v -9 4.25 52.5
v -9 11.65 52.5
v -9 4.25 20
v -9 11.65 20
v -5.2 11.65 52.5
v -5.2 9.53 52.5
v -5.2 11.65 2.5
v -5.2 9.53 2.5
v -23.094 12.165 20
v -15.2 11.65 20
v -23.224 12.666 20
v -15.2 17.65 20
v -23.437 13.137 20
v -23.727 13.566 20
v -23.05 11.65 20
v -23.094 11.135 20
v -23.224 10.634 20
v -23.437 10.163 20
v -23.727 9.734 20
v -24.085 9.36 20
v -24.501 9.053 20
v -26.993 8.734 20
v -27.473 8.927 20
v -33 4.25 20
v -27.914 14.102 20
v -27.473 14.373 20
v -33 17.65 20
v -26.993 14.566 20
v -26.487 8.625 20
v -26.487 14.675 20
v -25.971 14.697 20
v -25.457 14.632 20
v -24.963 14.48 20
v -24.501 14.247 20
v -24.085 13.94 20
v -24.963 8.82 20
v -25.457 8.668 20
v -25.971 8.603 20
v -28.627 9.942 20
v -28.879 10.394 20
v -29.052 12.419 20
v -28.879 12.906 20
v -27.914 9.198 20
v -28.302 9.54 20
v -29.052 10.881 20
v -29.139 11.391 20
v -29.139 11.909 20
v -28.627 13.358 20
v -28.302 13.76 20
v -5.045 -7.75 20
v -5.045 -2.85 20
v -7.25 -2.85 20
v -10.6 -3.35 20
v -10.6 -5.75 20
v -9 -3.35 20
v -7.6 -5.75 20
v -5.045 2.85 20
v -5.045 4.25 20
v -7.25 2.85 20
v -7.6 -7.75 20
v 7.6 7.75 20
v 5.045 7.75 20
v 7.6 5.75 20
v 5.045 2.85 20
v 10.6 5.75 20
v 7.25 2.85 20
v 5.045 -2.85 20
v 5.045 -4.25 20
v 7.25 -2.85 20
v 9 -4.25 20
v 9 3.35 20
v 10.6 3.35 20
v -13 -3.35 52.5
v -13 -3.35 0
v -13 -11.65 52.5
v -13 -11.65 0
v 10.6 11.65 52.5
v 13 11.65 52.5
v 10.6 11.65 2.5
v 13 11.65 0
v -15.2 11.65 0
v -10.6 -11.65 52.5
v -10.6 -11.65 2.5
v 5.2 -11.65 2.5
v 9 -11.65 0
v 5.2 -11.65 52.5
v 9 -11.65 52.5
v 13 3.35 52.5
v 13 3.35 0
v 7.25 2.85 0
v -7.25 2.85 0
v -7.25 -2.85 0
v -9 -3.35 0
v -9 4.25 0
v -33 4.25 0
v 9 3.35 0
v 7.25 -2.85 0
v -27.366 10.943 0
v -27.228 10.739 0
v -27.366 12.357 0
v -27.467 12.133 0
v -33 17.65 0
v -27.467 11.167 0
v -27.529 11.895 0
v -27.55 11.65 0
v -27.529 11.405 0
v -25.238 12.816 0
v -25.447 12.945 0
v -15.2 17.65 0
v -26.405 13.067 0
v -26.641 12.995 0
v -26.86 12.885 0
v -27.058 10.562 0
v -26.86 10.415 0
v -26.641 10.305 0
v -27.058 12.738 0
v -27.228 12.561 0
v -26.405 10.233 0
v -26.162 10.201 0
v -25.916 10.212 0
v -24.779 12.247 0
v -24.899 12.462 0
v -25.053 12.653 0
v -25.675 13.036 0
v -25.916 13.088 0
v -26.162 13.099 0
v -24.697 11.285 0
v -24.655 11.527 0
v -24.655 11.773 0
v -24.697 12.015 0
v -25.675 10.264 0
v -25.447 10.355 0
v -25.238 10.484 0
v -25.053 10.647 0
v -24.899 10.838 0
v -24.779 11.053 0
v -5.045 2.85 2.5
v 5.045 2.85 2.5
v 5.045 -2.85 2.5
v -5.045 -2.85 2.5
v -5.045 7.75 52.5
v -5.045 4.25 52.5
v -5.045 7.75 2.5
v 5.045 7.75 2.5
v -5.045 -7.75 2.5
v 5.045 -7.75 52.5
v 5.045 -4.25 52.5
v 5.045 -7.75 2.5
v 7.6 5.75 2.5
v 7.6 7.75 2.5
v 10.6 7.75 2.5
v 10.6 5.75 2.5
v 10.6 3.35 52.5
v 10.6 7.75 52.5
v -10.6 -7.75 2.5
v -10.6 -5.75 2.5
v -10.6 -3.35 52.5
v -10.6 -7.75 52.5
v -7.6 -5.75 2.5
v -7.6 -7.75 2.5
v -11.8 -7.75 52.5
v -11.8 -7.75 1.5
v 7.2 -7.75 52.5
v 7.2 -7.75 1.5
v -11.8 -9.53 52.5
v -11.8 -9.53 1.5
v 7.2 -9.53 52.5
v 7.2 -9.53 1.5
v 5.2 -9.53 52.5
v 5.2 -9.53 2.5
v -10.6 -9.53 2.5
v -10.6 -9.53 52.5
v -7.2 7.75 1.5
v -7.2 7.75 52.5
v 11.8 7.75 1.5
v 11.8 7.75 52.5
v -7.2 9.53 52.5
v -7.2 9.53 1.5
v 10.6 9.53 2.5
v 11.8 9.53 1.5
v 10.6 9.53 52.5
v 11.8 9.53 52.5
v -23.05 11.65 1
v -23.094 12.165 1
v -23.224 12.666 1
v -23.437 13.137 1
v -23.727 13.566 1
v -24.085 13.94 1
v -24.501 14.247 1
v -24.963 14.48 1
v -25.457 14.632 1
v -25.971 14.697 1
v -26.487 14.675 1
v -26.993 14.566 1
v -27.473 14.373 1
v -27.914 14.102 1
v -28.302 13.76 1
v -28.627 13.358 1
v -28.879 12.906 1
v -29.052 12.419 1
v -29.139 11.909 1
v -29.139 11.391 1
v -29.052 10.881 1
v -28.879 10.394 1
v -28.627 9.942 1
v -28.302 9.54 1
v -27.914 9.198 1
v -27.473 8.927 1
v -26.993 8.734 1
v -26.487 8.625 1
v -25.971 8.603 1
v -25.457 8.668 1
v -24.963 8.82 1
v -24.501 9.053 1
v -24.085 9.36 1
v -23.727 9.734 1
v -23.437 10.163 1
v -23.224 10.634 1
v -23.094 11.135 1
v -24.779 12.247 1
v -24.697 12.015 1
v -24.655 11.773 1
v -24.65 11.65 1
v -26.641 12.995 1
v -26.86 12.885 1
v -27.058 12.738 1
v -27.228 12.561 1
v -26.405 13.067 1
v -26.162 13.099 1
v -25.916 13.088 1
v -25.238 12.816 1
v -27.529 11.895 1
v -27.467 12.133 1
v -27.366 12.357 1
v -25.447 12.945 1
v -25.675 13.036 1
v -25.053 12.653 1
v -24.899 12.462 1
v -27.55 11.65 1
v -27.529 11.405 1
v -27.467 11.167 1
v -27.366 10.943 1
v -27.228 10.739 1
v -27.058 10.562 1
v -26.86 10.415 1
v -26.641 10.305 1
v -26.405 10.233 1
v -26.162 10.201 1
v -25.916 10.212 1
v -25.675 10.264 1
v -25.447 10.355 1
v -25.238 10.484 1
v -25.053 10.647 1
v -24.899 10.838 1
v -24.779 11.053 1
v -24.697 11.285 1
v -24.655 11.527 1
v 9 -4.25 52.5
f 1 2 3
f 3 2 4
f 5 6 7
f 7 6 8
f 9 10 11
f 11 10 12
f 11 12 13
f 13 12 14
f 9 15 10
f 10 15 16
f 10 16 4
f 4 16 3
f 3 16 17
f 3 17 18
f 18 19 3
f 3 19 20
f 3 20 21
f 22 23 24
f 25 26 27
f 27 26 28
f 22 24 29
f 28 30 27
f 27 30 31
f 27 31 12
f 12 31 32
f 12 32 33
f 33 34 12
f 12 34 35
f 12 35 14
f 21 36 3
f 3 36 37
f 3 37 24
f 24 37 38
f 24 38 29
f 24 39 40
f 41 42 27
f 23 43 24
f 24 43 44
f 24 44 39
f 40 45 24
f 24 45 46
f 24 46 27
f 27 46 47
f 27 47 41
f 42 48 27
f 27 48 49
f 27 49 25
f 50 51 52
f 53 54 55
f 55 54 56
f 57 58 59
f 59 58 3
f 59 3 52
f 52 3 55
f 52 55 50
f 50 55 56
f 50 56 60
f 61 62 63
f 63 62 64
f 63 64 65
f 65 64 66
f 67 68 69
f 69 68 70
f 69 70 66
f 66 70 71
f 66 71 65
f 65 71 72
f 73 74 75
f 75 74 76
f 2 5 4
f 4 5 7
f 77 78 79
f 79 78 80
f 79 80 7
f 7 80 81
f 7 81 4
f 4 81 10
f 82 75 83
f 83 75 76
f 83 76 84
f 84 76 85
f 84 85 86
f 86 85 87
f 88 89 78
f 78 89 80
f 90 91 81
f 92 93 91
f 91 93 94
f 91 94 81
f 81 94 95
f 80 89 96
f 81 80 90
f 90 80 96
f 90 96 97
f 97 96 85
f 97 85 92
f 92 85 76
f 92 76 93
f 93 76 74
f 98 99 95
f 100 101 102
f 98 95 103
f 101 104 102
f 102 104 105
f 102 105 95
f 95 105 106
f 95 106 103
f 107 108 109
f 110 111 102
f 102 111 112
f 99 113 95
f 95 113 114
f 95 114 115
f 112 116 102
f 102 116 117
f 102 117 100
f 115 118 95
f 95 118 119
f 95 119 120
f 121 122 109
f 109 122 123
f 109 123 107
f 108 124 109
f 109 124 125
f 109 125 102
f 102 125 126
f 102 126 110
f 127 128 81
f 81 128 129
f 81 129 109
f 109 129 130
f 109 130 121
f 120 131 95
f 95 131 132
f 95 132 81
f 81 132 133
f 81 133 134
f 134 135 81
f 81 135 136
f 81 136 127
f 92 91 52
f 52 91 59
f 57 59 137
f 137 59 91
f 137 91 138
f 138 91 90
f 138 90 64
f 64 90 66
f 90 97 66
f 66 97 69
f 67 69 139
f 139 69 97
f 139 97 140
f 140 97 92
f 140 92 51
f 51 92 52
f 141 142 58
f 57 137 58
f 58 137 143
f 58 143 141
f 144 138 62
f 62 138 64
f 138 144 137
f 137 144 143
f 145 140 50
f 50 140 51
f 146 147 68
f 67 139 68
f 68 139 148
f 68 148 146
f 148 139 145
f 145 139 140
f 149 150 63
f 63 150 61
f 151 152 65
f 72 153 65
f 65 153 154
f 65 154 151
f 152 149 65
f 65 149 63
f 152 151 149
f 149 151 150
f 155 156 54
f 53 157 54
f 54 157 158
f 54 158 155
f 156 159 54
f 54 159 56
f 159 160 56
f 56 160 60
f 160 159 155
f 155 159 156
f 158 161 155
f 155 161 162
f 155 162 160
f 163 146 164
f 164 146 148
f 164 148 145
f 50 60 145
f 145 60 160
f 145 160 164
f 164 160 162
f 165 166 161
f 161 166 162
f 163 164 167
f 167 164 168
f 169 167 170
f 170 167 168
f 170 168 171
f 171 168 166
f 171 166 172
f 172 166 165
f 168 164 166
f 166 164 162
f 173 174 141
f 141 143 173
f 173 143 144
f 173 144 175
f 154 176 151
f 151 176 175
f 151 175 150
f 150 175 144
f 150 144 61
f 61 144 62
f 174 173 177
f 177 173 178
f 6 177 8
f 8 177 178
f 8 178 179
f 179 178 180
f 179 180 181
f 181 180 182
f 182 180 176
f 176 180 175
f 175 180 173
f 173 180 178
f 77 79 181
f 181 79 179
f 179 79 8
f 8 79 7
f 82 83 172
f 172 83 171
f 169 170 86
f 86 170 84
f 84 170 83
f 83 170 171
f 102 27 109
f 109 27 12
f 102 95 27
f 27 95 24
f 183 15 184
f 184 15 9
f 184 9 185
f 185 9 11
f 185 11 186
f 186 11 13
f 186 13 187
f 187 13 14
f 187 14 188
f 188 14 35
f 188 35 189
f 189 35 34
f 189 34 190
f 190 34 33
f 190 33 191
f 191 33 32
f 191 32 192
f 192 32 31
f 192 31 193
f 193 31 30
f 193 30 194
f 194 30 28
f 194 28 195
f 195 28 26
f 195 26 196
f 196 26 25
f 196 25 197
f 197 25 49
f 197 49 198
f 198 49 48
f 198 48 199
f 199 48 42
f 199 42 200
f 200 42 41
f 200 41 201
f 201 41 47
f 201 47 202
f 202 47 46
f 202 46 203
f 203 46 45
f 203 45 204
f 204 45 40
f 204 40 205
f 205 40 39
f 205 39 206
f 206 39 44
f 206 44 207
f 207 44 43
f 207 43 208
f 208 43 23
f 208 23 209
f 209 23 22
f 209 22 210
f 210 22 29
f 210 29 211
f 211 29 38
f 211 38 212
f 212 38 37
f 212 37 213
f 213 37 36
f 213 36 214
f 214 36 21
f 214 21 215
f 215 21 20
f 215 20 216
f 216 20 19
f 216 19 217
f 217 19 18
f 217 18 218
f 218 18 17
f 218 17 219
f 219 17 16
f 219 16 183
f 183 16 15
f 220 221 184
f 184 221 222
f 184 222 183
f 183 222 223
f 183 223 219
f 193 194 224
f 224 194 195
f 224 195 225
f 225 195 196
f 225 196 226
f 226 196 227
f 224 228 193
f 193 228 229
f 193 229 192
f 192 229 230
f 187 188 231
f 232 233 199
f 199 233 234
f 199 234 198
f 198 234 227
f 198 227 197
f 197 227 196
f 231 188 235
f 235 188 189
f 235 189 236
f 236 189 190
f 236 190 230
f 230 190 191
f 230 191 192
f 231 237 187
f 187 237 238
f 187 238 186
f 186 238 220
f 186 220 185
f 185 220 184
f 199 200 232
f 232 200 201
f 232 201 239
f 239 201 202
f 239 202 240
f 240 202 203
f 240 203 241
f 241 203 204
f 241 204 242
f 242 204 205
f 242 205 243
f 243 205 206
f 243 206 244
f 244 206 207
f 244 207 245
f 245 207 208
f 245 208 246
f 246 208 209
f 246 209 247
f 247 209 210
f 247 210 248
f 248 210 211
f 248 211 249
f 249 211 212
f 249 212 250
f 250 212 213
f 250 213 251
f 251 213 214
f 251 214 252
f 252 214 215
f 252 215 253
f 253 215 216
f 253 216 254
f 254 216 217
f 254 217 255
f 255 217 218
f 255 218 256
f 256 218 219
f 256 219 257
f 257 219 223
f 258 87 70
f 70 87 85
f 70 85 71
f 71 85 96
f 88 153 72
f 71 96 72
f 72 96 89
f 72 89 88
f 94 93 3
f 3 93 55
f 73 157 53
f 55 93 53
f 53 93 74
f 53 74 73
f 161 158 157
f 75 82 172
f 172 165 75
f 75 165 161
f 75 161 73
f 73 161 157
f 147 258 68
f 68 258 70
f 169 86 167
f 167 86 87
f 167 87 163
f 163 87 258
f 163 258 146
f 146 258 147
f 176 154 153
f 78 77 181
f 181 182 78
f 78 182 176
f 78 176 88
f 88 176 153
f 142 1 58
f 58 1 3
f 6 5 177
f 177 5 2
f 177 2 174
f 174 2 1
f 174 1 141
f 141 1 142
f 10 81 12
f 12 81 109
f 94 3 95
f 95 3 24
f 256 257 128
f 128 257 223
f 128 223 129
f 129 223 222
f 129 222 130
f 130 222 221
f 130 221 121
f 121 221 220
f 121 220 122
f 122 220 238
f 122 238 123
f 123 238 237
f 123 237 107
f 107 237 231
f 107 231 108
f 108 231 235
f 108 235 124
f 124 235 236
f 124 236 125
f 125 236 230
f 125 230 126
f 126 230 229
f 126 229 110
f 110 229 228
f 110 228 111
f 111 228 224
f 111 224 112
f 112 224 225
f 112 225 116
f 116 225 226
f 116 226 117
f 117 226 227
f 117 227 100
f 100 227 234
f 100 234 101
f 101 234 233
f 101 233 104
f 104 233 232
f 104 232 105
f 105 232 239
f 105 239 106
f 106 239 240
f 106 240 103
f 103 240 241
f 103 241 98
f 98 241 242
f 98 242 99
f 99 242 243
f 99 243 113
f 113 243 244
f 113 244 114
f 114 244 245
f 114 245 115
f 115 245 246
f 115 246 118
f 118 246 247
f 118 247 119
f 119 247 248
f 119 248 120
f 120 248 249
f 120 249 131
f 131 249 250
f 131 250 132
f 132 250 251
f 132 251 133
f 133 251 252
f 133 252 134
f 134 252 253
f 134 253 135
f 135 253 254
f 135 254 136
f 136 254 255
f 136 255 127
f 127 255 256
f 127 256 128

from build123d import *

# Parameters (mm, degrees)
SKETCH2_W            = 26
SKETCH2_H            = 23.3
BOSS_EXTRUDE1_DEPTH  = 20
SKETCH3_W            = 14.5
SKETCH3_H            = 5.7
CUT_EXTRUDE1_DEPTH   = 20
SKETCH4_W            = 10.09
SKETCH4_H            = 4.9
CUT_EXTRUDE2_DEPTH   = 17.5
SKETCH5_W            = 10.09
SKETCH5_H            = 4.9
CUT_EXTRUDE3_DEPTH   = 17.5
SKETCH10_W           = 3
SKETCH10_H           = 2
CUT_EXTRUDE4_DEPTH   = 17.5
SKETCH11_W           = 3
SKETCH11_H           = 2
CUT_EXTRUDE5_DEPTH   = 17.5
SKETCH7_W            = 19
SKETCH7_H            = 1.78
CUT_EXTRUDE6_DEPTH   = 18.5
SKETCH6_W            = 19
SKETCH6_H            = 1.78
CUT_EXTRUDE7_DEPTH   = 18.5
SKETCH9_W            = 15.8
SKETCH9_H            = 2.12
CUT_EXTRUDE8_DEPTH   = 17.5
SKETCH12_W           = 15.8
SKETCH12_H           = 2.12
CUT_EXTRUDE9_DEPTH   = 17.5
SKETCH14_W           = 7.8
SKETCH14_H           = 20
BOSS_EXTRUDE2_DEPTH  = 6
SKETCH13_W           = 20
SKETCH13_H           = 12
BOSS_EXTRUDE3_DEPTH  = 20
SKETCH15_R           = 3.05
CUT_EXTRUDE10_DEPTH  = 19
SKETCH16_W           = 4
SKETCH16_H           = 15
CUT_EXTRUDE11_DEPTH  = 20
SKETCH18_W           = 4
SKETCH18_H           = 9
CUT_EXTRUDE12_DEPTH  = 20
BOSS_EXTRUDE8_DEPTH  = 32.5
BOSS_EXTRUDE9_DEPTH  = 32.5
SKETCH23_W           = 10
SKETCH23_H           = 20
CUT_EXTRUDE14_DEPTH  = 6
SKETCH24_W           = 24
SKETCH24_H           = 20
BOSS_EXTRUDE10_DEPTH = 1.4
SKETCH26_R           = 1.45
CUT_EXTRUDE15_DEPTH  = 10


with BuildPart() as part:
    # Sketch2 → Boss-Extrude1 (new body)
    with BuildSketch(Plane.XY):
        Rectangle(SKETCH2_W, SKETCH2_H)
    extrude(amount=BOSS_EXTRUDE1_DEPTH)

    # Sketch3 → Cut-Extrude1 (cut)
    with BuildSketch(Plane.XY.offset(20)):
        Rectangle(SKETCH3_W, SKETCH3_H)
    extrude(amount=-CUT_EXTRUDE1_DEPTH, mode=Mode.SUBTRACT)

    # Sketch4 → Cut-Extrude2 (cut)
    with BuildSketch(Plane.XY.offset(20)):
        with Locations((0, 5.3)):
            Rectangle(SKETCH4_W, SKETCH4_H)
    extrude(amount=-CUT_EXTRUDE2_DEPTH, mode=Mode.SUBTRACT)

    # Sketch5 → Cut-Extrude3 (cut)
    with BuildSketch(Plane.XY.offset(20)):
        with Locations((0, -5.3)):
            Rectangle(SKETCH5_W, SKETCH5_H)
    extrude(amount=-CUT_EXTRUDE3_DEPTH, mode=Mode.SUBTRACT)

    # Sketch10 → Cut-Extrude4 (cut)
    with BuildSketch(Plane.XY.offset(20)):
        with Locations((9.1, 6.75)):
            Rectangle(SKETCH10_W, SKETCH10_H)
    extrude(amount=-CUT_EXTRUDE4_DEPTH, mode=Mode.SUBTRACT)

    # Sketch11 → Cut-Extrude5 (cut)
    with BuildSketch(Plane.XY.offset(20)):
        with Locations((-9.1, -6.75)):
            Rectangle(SKETCH11_W, SKETCH11_H)
    extrude(amount=-CUT_EXTRUDE5_DEPTH, mode=Mode.SUBTRACT)

    # Sketch7 → Cut-Extrude6 (cut)
    with BuildSketch(Plane.XY.offset(20)):
        with Locations((-2.3, -8.64)):
            Rectangle(SKETCH7_W, SKETCH7_H)
    extrude(amount=-CUT_EXTRUDE6_DEPTH, mode=Mode.SUBTRACT)

    # Sketch6 → Cut-Extrude7 (cut)
    with BuildSketch(Plane.XY.offset(20)):
        with Locations((2.3, 8.64)):
            Rectangle(SKETCH6_W, SKETCH6_H)
    extrude(amount=-CUT_EXTRUDE7_DEPTH, mode=Mode.SUBTRACT)

    # Sketch9 → Cut-Extrude8 (cut)
    with BuildSketch(Plane.XY.offset(20)):
        with Locations((2.7, 10.59)):
            Rectangle(SKETCH9_W, SKETCH9_H)
    extrude(amount=-CUT_EXTRUDE8_DEPTH, mode=Mode.SUBTRACT)

    # Sketch12 → Cut-Extrude9 (cut)
    with BuildSketch(Plane.XY.offset(20)):
        with Locations((-2.7, -10.59)):
            Rectangle(SKETCH12_W, SKETCH12_H)
    extrude(amount=-CUT_EXTRUDE9_DEPTH, mode=Mode.SUBTRACT)

    # Sketch14 → Boss-Extrude2 (add)
    with BuildSketch(Plane(origin=(0, 11.65, 0), x_dir=(1, 0, 0), z_dir=(0, 1, 0))):
        with Locations((-9.1, -10)):
            Rectangle(SKETCH14_W, SKETCH14_H)
    extrude(amount=BOSS_EXTRUDE2_DEPTH)

    # Sketch13 → Boss-Extrude3 (add)
    with BuildSketch(Plane.ZY.offset(13)):
        with Locations((10, 11.65)):
            Rectangle(SKETCH13_W, SKETCH13_H)
    extrude(amount=BOSS_EXTRUDE3_DEPTH)

    # Sketch15 → Cut-Extrude10 (cut)
    with BuildSketch(Plane.XY.offset(20)):
        with Locations((-26.1, 11.65)):
            Circle(SKETCH15_R)
    extrude(amount=-CUT_EXTRUDE10_DEPTH, mode=Mode.SUBTRACT)

    # Sketch16 → Cut-Extrude11 (cut)
    with BuildSketch(Plane.XY.offset(20)):
        with Locations((11, -4.15)):
            Rectangle(SKETCH16_W, SKETCH16_H)
    extrude(amount=-CUT_EXTRUDE11_DEPTH, mode=Mode.SUBTRACT)

    # Sketch18 → Cut-Extrude12 (cut)
    with BuildSketch(Plane.XY.offset(20)):
        with Locations((-11, 1.15)):
            Rectangle(SKETCH18_W, SKETCH18_H)
    extrude(amount=-CUT_EXTRUDE12_DEPTH, mode=Mode.SUBTRACT)

    # Sketch21 → Boss-Extrude8 (add)
    with BuildSketch(Plane.XY.offset(20)):
        Polygon((-13, -11.65), (-13, -3.35), (-10.6, -3.35), (-10.6, -7.75), (-11.8, -7.75), (-11.8, -9.53), (-10.6, -9.53), (-10.6, -11.65), align=None)
        Polygon((5.2, -9.53), (5.2, -11.65), (9, -11.65), (9, -4.25), (5.045, -4.25), (5.045, -7.75), (7.2, -7.75), (7.2, -9.53), align=None)
    extrude(amount=BOSS_EXTRUDE8_DEPTH)

    # Sketch22 → Boss-Extrude9 (add)
    with BuildSketch(Plane.XY.offset(20)):
        Polygon((10.6, 11.65), (13, 11.65), (13, 3.35), (10.6, 3.35), (10.6, 7.75), (11.8, 7.75), (11.8, 9.53), (10.6, 9.53), align=None)
        Polygon((-5.2, 9.53), (-5.2, 11.65), (-9, 11.65), (-9, 4.25), (-5.045, 4.25), (-5.045, 7.75), (-7.2, 7.75), (-7.2, 9.53), align=None)
    extrude(amount=BOSS_EXTRUDE9_DEPTH)

    # Sketch23 → Cut-Extrude14 (cut)
    with BuildSketch(Plane(origin=(0, 17.65, 0), x_dir=(1, 0, 0), z_dir=(0, 1, 0))):
        with Locations((-10.2, -10)):
            Rectangle(SKETCH23_W, SKETCH23_H)
    extrude(amount=-CUT_EXTRUDE14_DEPTH, mode=Mode.SUBTRACT)

    # Sketch24 → Boss-Extrude10 (add)
    with BuildSketch(Plane.XZ.offset(-5.65)):
        with Locations((-21, 10)):
            Rectangle(SKETCH24_W, SKETCH24_H)
    extrude(amount=BOSS_EXTRUDE10_DEPTH)

    # Sketch26 → Cut-Extrude15 (cut)
    with BuildSketch(Plane(origin=(0, 0, 0), x_dir=(-1, 0, 0), z_dir=(0, 0, -1))):
        with Locations((26.1, 11.65)):
            Circle(SKETCH26_R)
    extrude(amount=-CUT_EXTRUDE15_DEPTH, mode=Mode.SUBTRACT)


solid = part.part
